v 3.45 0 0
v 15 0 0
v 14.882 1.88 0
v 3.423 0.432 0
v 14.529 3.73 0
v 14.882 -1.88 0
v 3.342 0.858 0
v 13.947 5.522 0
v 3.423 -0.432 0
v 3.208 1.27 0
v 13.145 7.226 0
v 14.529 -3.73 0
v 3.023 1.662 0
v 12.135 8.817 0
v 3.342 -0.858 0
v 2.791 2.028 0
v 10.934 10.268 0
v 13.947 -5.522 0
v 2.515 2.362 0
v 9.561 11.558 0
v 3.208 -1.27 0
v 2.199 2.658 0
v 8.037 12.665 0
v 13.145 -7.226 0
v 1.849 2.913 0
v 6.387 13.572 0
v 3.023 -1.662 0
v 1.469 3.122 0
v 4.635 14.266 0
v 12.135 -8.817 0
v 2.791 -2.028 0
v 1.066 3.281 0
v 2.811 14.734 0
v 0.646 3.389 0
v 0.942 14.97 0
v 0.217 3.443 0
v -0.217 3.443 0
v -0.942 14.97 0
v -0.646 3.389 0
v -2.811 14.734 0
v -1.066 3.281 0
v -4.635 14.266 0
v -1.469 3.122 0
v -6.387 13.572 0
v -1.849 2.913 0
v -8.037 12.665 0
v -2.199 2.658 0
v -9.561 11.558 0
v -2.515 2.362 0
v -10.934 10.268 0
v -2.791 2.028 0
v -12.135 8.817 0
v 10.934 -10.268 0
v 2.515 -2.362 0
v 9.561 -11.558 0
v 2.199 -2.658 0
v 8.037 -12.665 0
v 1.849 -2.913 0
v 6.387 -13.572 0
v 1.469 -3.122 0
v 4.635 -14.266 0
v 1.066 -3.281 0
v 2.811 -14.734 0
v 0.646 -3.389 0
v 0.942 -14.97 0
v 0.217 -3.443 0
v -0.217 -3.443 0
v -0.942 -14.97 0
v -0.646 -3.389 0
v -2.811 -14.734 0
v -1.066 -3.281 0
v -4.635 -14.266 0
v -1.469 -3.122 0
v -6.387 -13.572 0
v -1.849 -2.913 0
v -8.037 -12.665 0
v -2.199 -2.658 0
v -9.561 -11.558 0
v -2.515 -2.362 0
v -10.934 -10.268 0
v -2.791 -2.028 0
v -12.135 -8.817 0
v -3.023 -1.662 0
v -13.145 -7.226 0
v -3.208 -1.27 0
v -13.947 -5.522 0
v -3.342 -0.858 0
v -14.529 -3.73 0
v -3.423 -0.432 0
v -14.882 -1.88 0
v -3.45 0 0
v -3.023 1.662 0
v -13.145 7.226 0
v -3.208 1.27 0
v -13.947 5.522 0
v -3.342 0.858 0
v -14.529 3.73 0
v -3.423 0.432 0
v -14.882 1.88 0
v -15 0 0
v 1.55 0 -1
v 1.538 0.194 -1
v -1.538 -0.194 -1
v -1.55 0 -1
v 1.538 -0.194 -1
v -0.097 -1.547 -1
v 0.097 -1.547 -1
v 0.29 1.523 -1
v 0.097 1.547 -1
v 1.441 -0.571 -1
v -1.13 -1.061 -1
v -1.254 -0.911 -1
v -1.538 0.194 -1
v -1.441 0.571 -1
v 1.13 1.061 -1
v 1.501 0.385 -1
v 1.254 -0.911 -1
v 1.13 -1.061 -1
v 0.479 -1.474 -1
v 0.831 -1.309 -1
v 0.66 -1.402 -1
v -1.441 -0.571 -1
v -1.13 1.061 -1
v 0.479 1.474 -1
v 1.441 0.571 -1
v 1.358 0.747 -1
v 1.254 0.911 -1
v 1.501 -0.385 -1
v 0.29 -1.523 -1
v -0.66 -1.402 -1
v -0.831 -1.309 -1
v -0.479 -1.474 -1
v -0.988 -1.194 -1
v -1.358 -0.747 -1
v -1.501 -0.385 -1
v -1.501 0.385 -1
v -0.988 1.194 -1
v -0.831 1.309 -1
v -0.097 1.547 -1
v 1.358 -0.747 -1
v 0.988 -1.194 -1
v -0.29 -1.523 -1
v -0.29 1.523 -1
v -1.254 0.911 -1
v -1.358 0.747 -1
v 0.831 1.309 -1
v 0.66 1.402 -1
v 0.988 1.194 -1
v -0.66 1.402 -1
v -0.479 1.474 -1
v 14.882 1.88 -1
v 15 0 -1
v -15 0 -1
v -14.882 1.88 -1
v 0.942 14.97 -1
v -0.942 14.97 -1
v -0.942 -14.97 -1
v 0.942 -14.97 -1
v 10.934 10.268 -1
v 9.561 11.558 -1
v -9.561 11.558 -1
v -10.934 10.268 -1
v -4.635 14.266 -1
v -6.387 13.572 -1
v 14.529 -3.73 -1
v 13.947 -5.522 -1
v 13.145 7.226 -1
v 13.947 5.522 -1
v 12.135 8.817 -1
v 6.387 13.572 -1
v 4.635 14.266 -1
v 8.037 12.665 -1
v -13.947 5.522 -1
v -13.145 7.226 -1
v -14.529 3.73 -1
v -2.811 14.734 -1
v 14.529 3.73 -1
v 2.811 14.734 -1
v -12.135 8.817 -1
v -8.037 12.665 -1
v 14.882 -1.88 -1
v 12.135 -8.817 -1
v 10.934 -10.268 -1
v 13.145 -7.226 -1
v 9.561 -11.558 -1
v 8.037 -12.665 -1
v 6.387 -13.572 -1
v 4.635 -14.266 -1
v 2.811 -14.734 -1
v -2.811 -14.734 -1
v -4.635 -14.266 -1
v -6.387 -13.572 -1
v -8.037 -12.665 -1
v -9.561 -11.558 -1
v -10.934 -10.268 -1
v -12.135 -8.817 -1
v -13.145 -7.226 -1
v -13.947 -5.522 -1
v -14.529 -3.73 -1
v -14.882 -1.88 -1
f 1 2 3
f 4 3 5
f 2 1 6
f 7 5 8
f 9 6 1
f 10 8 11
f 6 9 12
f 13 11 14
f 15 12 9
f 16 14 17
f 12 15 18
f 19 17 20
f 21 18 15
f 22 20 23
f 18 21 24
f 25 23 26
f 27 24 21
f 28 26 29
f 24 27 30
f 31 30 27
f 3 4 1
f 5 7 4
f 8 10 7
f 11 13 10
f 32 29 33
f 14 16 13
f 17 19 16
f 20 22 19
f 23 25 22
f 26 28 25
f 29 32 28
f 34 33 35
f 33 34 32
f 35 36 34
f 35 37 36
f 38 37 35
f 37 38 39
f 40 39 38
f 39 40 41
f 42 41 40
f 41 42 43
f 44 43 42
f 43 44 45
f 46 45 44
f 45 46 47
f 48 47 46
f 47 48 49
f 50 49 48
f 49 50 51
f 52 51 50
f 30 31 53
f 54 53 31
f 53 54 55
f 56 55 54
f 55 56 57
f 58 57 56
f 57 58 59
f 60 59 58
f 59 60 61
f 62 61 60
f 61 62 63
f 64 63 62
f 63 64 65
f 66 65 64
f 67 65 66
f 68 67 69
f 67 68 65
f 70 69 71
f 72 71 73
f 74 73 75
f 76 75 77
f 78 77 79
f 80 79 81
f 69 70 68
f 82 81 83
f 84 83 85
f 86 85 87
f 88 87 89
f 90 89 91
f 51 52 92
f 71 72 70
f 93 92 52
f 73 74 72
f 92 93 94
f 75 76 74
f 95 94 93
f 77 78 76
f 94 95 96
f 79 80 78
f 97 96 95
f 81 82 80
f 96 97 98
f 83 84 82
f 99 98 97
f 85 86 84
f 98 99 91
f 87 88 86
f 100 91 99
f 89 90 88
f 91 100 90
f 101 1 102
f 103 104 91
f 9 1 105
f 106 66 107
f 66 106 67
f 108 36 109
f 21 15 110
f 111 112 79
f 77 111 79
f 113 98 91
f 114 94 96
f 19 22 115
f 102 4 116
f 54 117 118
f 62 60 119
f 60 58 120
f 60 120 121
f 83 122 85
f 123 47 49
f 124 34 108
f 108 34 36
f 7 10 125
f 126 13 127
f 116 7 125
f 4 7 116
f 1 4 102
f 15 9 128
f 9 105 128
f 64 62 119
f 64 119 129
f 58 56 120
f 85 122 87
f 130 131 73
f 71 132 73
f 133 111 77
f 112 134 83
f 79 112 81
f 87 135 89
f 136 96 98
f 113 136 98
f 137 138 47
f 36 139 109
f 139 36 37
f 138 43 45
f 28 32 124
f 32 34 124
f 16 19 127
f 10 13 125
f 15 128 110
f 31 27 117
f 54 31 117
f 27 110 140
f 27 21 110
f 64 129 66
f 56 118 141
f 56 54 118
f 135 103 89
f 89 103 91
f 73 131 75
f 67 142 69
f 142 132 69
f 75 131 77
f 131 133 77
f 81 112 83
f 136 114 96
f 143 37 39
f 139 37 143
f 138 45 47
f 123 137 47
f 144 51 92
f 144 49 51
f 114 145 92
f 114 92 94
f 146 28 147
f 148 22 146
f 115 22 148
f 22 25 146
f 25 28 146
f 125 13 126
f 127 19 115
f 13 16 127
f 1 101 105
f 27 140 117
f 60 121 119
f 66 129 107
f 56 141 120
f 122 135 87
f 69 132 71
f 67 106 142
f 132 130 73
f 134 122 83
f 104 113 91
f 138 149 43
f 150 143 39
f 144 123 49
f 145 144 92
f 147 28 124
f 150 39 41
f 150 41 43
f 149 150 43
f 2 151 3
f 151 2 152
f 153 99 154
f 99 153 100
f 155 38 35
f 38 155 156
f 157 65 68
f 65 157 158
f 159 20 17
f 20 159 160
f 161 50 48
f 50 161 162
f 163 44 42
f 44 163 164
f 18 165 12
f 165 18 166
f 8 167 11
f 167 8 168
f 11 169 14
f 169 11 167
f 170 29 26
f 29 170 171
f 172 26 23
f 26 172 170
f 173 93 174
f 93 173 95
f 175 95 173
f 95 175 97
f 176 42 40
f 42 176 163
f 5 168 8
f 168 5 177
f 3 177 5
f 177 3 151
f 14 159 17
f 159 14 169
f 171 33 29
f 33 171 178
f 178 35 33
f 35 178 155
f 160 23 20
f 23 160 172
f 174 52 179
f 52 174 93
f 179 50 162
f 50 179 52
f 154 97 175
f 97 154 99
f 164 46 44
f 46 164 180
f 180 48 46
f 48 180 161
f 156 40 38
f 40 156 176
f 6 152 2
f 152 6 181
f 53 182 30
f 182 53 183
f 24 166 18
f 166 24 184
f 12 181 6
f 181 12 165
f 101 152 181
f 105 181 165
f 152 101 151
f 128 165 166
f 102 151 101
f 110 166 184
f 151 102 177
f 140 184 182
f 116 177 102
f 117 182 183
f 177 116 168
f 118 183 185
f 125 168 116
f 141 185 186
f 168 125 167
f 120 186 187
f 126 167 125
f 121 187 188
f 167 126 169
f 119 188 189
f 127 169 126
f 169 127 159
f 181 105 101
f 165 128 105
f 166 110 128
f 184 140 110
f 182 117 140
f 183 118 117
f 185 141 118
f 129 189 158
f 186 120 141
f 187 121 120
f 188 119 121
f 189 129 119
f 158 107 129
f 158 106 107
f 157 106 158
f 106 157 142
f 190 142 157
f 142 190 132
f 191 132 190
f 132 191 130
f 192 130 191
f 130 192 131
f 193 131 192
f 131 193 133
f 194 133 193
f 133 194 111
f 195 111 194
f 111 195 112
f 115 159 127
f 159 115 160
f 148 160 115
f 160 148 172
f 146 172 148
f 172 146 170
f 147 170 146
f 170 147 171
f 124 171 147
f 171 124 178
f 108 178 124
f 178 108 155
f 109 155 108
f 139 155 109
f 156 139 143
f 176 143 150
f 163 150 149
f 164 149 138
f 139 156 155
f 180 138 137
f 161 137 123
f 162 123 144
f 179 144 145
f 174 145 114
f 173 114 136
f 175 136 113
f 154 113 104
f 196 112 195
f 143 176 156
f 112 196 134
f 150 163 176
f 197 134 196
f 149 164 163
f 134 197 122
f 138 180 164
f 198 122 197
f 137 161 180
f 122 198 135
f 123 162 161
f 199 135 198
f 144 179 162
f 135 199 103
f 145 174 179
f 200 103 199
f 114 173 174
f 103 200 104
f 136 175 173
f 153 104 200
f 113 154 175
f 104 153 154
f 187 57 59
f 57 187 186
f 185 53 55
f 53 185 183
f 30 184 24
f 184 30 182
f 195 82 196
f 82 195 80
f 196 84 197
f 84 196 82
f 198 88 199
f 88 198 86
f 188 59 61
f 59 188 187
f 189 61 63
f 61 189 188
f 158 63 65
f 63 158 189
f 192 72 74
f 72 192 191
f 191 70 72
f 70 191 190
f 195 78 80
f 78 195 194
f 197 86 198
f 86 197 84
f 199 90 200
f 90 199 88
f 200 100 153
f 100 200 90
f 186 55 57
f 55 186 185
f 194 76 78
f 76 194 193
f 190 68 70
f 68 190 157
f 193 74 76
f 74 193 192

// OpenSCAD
$fn = 50;

difference() {
	union() {
		translate(v = [0, 0, -1.0]) {
			cylinder(h = 1.0, r = 15.0);
		}
	}
	union() {
		translate(v = [0, 0, 0]) {
			rotate(a = [0, 0, 0]) {
				difference() {
					union() {
						translate(v = [0, 0, -4.0]) {
							cylinder(h = 4.0, r = 1.25);
						}
						translate(v = [0, 0, -1.0]) {
							cylinder(h = 1.0, r1 = 1.55, r2 = 3.45);
						}
						translate(v = [0, 0, -4.0]) {
							cylinder(h = 4.0, r = 1.55);
						}
						translate(v = [0, 0, -4.0]) {
							cylinder(h = 4.0, r = 1.25);
						}
					}
					union();
				}
			}
		}
	}
}
